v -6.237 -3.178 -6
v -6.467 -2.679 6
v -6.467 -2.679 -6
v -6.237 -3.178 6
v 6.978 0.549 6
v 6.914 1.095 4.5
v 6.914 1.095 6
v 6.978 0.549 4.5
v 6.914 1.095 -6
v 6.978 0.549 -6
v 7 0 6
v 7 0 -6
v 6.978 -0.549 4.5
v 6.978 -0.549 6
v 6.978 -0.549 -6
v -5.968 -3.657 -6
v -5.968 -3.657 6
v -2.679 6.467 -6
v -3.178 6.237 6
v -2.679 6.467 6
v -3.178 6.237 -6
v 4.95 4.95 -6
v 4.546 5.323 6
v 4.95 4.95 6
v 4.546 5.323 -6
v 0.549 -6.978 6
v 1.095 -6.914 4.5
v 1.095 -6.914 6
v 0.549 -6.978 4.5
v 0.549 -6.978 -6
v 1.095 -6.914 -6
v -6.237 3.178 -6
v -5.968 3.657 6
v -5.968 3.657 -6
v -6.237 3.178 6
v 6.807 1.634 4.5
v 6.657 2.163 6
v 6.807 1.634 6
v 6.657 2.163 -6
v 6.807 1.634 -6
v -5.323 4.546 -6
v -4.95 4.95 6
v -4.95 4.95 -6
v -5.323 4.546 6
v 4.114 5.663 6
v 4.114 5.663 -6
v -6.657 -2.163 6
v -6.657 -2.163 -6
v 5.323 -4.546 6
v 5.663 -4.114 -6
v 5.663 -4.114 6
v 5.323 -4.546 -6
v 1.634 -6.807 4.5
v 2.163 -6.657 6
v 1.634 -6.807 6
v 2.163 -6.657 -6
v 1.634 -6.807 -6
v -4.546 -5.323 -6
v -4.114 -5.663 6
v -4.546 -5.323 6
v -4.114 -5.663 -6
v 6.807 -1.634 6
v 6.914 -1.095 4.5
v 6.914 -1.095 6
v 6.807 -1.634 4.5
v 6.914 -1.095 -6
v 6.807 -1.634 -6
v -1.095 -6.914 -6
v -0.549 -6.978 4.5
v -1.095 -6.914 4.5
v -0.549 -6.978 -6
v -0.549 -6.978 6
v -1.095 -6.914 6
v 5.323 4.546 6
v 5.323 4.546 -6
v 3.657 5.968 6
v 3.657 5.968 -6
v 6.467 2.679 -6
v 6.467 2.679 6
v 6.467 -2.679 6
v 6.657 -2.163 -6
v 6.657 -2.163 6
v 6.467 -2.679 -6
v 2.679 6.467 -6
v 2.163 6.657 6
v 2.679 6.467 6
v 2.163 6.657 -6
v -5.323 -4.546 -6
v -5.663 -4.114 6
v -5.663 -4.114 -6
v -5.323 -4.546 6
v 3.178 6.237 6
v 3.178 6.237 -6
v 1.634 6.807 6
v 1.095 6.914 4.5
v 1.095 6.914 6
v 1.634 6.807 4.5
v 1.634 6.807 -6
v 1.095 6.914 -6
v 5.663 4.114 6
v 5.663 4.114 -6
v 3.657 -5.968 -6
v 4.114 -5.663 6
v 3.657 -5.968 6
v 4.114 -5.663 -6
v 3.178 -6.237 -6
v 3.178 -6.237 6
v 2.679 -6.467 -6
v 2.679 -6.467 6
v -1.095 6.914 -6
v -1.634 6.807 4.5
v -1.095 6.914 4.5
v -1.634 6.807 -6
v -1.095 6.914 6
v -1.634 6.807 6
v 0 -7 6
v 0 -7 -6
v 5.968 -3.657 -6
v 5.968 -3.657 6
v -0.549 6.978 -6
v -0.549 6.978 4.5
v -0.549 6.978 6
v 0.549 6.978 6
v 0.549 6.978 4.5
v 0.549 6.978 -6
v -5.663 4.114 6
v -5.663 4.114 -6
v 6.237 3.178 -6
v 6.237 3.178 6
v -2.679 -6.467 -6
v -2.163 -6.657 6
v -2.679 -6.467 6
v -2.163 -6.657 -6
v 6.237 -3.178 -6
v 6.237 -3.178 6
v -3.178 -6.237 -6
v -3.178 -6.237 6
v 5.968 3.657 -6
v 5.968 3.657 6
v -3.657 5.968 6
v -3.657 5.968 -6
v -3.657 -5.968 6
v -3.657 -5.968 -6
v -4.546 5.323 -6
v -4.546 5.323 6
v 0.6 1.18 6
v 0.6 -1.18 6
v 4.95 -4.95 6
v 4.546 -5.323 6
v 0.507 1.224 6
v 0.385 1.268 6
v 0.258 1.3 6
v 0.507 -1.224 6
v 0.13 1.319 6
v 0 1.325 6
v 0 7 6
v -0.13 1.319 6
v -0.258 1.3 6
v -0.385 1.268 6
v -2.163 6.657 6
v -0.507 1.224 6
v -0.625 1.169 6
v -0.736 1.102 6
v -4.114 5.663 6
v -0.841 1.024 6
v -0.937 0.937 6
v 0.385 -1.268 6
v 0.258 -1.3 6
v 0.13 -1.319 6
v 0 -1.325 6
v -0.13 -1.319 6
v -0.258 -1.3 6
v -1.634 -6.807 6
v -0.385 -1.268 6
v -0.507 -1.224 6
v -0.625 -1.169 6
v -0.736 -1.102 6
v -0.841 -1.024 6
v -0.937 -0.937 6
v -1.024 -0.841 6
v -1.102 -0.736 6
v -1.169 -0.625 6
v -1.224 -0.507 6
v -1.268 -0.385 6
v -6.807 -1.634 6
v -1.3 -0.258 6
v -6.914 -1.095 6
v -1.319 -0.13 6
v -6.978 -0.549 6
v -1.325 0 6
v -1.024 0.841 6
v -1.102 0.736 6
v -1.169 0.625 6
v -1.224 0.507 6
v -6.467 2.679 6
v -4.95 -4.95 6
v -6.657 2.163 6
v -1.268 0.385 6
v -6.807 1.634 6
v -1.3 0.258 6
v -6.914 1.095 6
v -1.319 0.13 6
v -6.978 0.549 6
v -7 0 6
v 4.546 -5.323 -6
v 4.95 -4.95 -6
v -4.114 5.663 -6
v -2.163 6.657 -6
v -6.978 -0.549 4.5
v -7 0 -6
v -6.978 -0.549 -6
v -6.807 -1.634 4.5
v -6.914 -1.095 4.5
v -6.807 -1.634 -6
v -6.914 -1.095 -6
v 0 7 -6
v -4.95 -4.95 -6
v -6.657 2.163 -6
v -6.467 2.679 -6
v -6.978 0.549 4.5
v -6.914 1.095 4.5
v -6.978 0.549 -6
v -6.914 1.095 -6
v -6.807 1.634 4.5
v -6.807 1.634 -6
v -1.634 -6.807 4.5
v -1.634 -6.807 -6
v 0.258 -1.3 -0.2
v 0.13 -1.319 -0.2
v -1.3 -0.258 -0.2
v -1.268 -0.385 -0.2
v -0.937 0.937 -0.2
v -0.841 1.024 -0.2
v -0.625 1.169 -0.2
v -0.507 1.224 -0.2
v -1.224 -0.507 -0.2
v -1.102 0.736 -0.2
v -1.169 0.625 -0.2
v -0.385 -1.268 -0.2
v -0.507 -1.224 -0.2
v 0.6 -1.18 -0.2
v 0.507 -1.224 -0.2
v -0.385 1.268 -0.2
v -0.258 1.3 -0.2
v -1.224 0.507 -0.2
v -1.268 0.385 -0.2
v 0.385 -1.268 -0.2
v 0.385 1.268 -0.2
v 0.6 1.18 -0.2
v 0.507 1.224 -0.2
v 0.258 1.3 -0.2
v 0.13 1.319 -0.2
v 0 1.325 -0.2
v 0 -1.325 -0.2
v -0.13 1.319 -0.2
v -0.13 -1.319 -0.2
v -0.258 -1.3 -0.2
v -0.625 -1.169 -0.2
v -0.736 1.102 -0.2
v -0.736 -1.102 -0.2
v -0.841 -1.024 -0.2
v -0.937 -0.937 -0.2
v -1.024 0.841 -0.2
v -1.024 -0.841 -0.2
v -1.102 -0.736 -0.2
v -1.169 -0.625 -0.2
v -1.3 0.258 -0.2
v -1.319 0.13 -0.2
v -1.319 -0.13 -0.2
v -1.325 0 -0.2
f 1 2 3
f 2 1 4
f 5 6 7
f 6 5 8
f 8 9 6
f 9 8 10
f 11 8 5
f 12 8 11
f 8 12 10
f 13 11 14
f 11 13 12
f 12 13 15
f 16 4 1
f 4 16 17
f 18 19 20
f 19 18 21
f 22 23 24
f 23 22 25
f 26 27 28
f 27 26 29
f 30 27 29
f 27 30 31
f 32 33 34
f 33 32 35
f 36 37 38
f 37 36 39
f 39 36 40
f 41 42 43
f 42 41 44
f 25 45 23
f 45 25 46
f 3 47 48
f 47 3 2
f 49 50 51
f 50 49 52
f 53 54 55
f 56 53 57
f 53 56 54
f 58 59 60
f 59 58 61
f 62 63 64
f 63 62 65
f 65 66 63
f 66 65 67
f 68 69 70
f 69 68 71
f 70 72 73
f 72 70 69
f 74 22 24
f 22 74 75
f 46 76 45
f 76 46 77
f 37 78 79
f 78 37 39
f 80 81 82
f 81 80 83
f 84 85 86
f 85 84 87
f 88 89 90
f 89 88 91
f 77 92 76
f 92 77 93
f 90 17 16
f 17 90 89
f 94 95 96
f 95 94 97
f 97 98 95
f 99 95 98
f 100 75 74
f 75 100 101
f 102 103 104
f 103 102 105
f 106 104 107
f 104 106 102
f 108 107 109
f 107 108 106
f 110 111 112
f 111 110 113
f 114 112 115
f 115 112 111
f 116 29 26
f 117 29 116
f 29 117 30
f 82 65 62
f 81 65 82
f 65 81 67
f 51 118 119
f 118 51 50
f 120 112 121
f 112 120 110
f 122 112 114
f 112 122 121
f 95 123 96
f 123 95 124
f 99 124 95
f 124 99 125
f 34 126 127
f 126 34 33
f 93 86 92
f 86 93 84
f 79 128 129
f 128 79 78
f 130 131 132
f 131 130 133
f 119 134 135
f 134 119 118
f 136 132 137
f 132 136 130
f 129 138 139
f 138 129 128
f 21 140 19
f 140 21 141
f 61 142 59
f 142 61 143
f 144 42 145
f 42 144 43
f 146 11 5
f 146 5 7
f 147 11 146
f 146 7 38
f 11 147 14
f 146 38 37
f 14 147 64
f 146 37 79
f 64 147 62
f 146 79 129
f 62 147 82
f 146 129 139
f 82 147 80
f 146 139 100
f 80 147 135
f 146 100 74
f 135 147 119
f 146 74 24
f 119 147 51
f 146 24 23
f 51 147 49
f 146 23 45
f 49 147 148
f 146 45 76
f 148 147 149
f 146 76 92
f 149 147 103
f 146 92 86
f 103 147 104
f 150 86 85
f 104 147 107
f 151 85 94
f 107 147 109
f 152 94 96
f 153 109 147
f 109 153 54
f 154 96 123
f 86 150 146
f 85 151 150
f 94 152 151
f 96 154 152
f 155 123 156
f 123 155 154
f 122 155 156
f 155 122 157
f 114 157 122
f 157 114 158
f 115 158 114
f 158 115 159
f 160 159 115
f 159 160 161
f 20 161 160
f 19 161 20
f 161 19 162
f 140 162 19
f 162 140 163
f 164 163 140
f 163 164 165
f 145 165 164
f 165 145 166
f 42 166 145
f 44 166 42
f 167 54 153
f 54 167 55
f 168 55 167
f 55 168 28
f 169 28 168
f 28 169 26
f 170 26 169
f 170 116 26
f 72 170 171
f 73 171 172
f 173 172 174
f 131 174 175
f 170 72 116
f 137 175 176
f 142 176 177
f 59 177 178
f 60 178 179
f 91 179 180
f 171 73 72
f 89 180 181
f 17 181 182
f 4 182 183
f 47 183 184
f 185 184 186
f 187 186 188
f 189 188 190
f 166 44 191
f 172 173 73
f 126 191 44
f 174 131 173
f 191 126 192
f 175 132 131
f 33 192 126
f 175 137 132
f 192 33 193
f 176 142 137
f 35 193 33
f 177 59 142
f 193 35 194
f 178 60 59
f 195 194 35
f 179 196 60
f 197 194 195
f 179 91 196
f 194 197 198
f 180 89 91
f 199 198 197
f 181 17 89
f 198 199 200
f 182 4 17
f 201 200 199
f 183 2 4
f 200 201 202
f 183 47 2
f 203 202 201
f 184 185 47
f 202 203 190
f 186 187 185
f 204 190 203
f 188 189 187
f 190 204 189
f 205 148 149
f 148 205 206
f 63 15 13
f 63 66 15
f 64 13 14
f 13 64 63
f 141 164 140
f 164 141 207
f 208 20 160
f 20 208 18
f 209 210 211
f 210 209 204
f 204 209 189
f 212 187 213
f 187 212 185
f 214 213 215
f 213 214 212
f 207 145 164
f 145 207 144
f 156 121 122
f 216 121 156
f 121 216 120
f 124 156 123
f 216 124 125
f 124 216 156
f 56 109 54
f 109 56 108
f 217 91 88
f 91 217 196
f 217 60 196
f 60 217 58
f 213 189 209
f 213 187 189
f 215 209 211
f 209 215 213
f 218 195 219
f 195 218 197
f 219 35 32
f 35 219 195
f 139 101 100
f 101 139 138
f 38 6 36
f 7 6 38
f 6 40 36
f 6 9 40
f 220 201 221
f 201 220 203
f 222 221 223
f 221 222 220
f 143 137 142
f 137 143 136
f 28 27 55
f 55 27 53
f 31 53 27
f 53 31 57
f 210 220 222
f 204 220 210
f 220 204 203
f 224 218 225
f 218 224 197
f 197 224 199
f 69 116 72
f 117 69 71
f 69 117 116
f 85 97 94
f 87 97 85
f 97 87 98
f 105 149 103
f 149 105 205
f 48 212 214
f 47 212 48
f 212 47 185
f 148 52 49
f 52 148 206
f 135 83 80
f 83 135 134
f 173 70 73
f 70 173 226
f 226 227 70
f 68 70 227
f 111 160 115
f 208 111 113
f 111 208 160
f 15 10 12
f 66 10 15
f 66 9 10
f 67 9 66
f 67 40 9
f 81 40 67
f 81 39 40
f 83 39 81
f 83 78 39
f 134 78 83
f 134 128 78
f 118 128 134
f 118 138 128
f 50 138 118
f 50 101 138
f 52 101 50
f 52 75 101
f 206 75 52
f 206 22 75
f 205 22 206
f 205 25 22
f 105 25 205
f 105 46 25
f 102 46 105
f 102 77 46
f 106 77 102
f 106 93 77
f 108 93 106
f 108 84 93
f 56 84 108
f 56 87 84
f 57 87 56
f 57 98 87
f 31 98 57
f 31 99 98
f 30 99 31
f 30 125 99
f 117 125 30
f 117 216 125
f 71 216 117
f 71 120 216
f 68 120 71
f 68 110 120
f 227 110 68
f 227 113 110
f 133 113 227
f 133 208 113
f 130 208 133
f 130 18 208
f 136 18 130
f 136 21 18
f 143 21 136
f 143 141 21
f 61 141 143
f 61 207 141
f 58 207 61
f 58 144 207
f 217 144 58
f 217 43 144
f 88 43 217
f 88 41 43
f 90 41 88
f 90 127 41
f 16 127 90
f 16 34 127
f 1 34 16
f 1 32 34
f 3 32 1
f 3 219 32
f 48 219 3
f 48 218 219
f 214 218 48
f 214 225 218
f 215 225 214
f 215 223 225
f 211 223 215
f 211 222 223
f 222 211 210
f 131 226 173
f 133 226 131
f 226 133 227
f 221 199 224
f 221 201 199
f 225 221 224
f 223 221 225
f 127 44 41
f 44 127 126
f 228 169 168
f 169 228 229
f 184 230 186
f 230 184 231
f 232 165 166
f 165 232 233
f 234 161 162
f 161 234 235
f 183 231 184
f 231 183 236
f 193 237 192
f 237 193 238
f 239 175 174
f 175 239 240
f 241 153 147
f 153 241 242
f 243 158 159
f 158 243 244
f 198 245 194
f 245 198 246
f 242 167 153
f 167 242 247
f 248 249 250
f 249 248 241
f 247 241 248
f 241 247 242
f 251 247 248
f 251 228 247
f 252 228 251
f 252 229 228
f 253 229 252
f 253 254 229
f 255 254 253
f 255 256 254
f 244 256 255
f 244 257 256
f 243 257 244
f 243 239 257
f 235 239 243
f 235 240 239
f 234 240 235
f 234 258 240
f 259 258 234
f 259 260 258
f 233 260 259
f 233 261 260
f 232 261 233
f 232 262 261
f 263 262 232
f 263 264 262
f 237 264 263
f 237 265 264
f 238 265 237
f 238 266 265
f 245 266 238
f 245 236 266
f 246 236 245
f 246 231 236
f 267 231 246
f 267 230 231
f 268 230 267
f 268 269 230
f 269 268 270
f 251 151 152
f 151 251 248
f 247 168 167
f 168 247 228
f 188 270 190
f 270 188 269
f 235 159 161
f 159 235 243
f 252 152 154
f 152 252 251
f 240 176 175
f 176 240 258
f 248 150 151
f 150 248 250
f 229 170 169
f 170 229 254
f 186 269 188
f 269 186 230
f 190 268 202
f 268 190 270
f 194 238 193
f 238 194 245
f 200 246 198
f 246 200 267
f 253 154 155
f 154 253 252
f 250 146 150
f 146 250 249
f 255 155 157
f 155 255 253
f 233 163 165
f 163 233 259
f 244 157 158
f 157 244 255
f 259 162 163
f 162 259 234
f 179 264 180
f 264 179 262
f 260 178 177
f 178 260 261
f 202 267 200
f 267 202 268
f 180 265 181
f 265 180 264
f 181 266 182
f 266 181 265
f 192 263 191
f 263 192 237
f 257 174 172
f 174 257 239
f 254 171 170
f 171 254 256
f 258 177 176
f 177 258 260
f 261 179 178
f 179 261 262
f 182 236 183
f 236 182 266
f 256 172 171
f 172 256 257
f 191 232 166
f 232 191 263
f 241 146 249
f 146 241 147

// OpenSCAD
// RKJXT1F42001 ロータリーエンコーダー用ノブ
// データシート: 内側金属シャフト Ø2.5 mm（D カット）
//
// OpenSCAD で F6 → F7 で STL 出力

// --- シャフト（RKJXT1F42001 内側シャフト） ---
shaft_d = 2.5;
shaft_flat_w = 2.0;      // D カット側の幅（フラット面）
shaft_bore_clearance = 0.15;
shaft_engagement = 6.0;  // シャフト突出 ~6.6 mm

// --- ノブ外形 ---
knob_d = 14.0;
knob_h = 12.0;
top_fillet_r = 1.5;

module d_shaft_bore(height) {
    bore_d = shaft_d + shaft_bore_clearance;
    difference() {
        cylinder(d = bore_d, h = height, center = true, $fn = 64);
        // D 型フラット（+X 側を削る）
        translate([1.2, 0, 0]) {
            cube([1.2, 3, height + 0.2], center = true);
        }
    }
}

module encoder_knob() {
    difference() {
        union() {
            cylinder(d = knob_d, h = knob_h, center = true, $fn = 80);
            // 上面を少し丸める
            translate([0, 0, knob_h / 2 - top_fillet_r]) {
                rotate_extrude($fn = 80) {
                    translate([knob_d / 2 - top_fillet_r, 0, 0]) {
                        circle(r = top_fillet_r, $fn = 32);
                    }
                }
            }
        }

        translate([0, 0, knob_h / 2 - shaft_engagement / 2]) {
            d_shaft_bore(shaft_engagement + 0.4);
        }
    }
}

encoder_knob();
